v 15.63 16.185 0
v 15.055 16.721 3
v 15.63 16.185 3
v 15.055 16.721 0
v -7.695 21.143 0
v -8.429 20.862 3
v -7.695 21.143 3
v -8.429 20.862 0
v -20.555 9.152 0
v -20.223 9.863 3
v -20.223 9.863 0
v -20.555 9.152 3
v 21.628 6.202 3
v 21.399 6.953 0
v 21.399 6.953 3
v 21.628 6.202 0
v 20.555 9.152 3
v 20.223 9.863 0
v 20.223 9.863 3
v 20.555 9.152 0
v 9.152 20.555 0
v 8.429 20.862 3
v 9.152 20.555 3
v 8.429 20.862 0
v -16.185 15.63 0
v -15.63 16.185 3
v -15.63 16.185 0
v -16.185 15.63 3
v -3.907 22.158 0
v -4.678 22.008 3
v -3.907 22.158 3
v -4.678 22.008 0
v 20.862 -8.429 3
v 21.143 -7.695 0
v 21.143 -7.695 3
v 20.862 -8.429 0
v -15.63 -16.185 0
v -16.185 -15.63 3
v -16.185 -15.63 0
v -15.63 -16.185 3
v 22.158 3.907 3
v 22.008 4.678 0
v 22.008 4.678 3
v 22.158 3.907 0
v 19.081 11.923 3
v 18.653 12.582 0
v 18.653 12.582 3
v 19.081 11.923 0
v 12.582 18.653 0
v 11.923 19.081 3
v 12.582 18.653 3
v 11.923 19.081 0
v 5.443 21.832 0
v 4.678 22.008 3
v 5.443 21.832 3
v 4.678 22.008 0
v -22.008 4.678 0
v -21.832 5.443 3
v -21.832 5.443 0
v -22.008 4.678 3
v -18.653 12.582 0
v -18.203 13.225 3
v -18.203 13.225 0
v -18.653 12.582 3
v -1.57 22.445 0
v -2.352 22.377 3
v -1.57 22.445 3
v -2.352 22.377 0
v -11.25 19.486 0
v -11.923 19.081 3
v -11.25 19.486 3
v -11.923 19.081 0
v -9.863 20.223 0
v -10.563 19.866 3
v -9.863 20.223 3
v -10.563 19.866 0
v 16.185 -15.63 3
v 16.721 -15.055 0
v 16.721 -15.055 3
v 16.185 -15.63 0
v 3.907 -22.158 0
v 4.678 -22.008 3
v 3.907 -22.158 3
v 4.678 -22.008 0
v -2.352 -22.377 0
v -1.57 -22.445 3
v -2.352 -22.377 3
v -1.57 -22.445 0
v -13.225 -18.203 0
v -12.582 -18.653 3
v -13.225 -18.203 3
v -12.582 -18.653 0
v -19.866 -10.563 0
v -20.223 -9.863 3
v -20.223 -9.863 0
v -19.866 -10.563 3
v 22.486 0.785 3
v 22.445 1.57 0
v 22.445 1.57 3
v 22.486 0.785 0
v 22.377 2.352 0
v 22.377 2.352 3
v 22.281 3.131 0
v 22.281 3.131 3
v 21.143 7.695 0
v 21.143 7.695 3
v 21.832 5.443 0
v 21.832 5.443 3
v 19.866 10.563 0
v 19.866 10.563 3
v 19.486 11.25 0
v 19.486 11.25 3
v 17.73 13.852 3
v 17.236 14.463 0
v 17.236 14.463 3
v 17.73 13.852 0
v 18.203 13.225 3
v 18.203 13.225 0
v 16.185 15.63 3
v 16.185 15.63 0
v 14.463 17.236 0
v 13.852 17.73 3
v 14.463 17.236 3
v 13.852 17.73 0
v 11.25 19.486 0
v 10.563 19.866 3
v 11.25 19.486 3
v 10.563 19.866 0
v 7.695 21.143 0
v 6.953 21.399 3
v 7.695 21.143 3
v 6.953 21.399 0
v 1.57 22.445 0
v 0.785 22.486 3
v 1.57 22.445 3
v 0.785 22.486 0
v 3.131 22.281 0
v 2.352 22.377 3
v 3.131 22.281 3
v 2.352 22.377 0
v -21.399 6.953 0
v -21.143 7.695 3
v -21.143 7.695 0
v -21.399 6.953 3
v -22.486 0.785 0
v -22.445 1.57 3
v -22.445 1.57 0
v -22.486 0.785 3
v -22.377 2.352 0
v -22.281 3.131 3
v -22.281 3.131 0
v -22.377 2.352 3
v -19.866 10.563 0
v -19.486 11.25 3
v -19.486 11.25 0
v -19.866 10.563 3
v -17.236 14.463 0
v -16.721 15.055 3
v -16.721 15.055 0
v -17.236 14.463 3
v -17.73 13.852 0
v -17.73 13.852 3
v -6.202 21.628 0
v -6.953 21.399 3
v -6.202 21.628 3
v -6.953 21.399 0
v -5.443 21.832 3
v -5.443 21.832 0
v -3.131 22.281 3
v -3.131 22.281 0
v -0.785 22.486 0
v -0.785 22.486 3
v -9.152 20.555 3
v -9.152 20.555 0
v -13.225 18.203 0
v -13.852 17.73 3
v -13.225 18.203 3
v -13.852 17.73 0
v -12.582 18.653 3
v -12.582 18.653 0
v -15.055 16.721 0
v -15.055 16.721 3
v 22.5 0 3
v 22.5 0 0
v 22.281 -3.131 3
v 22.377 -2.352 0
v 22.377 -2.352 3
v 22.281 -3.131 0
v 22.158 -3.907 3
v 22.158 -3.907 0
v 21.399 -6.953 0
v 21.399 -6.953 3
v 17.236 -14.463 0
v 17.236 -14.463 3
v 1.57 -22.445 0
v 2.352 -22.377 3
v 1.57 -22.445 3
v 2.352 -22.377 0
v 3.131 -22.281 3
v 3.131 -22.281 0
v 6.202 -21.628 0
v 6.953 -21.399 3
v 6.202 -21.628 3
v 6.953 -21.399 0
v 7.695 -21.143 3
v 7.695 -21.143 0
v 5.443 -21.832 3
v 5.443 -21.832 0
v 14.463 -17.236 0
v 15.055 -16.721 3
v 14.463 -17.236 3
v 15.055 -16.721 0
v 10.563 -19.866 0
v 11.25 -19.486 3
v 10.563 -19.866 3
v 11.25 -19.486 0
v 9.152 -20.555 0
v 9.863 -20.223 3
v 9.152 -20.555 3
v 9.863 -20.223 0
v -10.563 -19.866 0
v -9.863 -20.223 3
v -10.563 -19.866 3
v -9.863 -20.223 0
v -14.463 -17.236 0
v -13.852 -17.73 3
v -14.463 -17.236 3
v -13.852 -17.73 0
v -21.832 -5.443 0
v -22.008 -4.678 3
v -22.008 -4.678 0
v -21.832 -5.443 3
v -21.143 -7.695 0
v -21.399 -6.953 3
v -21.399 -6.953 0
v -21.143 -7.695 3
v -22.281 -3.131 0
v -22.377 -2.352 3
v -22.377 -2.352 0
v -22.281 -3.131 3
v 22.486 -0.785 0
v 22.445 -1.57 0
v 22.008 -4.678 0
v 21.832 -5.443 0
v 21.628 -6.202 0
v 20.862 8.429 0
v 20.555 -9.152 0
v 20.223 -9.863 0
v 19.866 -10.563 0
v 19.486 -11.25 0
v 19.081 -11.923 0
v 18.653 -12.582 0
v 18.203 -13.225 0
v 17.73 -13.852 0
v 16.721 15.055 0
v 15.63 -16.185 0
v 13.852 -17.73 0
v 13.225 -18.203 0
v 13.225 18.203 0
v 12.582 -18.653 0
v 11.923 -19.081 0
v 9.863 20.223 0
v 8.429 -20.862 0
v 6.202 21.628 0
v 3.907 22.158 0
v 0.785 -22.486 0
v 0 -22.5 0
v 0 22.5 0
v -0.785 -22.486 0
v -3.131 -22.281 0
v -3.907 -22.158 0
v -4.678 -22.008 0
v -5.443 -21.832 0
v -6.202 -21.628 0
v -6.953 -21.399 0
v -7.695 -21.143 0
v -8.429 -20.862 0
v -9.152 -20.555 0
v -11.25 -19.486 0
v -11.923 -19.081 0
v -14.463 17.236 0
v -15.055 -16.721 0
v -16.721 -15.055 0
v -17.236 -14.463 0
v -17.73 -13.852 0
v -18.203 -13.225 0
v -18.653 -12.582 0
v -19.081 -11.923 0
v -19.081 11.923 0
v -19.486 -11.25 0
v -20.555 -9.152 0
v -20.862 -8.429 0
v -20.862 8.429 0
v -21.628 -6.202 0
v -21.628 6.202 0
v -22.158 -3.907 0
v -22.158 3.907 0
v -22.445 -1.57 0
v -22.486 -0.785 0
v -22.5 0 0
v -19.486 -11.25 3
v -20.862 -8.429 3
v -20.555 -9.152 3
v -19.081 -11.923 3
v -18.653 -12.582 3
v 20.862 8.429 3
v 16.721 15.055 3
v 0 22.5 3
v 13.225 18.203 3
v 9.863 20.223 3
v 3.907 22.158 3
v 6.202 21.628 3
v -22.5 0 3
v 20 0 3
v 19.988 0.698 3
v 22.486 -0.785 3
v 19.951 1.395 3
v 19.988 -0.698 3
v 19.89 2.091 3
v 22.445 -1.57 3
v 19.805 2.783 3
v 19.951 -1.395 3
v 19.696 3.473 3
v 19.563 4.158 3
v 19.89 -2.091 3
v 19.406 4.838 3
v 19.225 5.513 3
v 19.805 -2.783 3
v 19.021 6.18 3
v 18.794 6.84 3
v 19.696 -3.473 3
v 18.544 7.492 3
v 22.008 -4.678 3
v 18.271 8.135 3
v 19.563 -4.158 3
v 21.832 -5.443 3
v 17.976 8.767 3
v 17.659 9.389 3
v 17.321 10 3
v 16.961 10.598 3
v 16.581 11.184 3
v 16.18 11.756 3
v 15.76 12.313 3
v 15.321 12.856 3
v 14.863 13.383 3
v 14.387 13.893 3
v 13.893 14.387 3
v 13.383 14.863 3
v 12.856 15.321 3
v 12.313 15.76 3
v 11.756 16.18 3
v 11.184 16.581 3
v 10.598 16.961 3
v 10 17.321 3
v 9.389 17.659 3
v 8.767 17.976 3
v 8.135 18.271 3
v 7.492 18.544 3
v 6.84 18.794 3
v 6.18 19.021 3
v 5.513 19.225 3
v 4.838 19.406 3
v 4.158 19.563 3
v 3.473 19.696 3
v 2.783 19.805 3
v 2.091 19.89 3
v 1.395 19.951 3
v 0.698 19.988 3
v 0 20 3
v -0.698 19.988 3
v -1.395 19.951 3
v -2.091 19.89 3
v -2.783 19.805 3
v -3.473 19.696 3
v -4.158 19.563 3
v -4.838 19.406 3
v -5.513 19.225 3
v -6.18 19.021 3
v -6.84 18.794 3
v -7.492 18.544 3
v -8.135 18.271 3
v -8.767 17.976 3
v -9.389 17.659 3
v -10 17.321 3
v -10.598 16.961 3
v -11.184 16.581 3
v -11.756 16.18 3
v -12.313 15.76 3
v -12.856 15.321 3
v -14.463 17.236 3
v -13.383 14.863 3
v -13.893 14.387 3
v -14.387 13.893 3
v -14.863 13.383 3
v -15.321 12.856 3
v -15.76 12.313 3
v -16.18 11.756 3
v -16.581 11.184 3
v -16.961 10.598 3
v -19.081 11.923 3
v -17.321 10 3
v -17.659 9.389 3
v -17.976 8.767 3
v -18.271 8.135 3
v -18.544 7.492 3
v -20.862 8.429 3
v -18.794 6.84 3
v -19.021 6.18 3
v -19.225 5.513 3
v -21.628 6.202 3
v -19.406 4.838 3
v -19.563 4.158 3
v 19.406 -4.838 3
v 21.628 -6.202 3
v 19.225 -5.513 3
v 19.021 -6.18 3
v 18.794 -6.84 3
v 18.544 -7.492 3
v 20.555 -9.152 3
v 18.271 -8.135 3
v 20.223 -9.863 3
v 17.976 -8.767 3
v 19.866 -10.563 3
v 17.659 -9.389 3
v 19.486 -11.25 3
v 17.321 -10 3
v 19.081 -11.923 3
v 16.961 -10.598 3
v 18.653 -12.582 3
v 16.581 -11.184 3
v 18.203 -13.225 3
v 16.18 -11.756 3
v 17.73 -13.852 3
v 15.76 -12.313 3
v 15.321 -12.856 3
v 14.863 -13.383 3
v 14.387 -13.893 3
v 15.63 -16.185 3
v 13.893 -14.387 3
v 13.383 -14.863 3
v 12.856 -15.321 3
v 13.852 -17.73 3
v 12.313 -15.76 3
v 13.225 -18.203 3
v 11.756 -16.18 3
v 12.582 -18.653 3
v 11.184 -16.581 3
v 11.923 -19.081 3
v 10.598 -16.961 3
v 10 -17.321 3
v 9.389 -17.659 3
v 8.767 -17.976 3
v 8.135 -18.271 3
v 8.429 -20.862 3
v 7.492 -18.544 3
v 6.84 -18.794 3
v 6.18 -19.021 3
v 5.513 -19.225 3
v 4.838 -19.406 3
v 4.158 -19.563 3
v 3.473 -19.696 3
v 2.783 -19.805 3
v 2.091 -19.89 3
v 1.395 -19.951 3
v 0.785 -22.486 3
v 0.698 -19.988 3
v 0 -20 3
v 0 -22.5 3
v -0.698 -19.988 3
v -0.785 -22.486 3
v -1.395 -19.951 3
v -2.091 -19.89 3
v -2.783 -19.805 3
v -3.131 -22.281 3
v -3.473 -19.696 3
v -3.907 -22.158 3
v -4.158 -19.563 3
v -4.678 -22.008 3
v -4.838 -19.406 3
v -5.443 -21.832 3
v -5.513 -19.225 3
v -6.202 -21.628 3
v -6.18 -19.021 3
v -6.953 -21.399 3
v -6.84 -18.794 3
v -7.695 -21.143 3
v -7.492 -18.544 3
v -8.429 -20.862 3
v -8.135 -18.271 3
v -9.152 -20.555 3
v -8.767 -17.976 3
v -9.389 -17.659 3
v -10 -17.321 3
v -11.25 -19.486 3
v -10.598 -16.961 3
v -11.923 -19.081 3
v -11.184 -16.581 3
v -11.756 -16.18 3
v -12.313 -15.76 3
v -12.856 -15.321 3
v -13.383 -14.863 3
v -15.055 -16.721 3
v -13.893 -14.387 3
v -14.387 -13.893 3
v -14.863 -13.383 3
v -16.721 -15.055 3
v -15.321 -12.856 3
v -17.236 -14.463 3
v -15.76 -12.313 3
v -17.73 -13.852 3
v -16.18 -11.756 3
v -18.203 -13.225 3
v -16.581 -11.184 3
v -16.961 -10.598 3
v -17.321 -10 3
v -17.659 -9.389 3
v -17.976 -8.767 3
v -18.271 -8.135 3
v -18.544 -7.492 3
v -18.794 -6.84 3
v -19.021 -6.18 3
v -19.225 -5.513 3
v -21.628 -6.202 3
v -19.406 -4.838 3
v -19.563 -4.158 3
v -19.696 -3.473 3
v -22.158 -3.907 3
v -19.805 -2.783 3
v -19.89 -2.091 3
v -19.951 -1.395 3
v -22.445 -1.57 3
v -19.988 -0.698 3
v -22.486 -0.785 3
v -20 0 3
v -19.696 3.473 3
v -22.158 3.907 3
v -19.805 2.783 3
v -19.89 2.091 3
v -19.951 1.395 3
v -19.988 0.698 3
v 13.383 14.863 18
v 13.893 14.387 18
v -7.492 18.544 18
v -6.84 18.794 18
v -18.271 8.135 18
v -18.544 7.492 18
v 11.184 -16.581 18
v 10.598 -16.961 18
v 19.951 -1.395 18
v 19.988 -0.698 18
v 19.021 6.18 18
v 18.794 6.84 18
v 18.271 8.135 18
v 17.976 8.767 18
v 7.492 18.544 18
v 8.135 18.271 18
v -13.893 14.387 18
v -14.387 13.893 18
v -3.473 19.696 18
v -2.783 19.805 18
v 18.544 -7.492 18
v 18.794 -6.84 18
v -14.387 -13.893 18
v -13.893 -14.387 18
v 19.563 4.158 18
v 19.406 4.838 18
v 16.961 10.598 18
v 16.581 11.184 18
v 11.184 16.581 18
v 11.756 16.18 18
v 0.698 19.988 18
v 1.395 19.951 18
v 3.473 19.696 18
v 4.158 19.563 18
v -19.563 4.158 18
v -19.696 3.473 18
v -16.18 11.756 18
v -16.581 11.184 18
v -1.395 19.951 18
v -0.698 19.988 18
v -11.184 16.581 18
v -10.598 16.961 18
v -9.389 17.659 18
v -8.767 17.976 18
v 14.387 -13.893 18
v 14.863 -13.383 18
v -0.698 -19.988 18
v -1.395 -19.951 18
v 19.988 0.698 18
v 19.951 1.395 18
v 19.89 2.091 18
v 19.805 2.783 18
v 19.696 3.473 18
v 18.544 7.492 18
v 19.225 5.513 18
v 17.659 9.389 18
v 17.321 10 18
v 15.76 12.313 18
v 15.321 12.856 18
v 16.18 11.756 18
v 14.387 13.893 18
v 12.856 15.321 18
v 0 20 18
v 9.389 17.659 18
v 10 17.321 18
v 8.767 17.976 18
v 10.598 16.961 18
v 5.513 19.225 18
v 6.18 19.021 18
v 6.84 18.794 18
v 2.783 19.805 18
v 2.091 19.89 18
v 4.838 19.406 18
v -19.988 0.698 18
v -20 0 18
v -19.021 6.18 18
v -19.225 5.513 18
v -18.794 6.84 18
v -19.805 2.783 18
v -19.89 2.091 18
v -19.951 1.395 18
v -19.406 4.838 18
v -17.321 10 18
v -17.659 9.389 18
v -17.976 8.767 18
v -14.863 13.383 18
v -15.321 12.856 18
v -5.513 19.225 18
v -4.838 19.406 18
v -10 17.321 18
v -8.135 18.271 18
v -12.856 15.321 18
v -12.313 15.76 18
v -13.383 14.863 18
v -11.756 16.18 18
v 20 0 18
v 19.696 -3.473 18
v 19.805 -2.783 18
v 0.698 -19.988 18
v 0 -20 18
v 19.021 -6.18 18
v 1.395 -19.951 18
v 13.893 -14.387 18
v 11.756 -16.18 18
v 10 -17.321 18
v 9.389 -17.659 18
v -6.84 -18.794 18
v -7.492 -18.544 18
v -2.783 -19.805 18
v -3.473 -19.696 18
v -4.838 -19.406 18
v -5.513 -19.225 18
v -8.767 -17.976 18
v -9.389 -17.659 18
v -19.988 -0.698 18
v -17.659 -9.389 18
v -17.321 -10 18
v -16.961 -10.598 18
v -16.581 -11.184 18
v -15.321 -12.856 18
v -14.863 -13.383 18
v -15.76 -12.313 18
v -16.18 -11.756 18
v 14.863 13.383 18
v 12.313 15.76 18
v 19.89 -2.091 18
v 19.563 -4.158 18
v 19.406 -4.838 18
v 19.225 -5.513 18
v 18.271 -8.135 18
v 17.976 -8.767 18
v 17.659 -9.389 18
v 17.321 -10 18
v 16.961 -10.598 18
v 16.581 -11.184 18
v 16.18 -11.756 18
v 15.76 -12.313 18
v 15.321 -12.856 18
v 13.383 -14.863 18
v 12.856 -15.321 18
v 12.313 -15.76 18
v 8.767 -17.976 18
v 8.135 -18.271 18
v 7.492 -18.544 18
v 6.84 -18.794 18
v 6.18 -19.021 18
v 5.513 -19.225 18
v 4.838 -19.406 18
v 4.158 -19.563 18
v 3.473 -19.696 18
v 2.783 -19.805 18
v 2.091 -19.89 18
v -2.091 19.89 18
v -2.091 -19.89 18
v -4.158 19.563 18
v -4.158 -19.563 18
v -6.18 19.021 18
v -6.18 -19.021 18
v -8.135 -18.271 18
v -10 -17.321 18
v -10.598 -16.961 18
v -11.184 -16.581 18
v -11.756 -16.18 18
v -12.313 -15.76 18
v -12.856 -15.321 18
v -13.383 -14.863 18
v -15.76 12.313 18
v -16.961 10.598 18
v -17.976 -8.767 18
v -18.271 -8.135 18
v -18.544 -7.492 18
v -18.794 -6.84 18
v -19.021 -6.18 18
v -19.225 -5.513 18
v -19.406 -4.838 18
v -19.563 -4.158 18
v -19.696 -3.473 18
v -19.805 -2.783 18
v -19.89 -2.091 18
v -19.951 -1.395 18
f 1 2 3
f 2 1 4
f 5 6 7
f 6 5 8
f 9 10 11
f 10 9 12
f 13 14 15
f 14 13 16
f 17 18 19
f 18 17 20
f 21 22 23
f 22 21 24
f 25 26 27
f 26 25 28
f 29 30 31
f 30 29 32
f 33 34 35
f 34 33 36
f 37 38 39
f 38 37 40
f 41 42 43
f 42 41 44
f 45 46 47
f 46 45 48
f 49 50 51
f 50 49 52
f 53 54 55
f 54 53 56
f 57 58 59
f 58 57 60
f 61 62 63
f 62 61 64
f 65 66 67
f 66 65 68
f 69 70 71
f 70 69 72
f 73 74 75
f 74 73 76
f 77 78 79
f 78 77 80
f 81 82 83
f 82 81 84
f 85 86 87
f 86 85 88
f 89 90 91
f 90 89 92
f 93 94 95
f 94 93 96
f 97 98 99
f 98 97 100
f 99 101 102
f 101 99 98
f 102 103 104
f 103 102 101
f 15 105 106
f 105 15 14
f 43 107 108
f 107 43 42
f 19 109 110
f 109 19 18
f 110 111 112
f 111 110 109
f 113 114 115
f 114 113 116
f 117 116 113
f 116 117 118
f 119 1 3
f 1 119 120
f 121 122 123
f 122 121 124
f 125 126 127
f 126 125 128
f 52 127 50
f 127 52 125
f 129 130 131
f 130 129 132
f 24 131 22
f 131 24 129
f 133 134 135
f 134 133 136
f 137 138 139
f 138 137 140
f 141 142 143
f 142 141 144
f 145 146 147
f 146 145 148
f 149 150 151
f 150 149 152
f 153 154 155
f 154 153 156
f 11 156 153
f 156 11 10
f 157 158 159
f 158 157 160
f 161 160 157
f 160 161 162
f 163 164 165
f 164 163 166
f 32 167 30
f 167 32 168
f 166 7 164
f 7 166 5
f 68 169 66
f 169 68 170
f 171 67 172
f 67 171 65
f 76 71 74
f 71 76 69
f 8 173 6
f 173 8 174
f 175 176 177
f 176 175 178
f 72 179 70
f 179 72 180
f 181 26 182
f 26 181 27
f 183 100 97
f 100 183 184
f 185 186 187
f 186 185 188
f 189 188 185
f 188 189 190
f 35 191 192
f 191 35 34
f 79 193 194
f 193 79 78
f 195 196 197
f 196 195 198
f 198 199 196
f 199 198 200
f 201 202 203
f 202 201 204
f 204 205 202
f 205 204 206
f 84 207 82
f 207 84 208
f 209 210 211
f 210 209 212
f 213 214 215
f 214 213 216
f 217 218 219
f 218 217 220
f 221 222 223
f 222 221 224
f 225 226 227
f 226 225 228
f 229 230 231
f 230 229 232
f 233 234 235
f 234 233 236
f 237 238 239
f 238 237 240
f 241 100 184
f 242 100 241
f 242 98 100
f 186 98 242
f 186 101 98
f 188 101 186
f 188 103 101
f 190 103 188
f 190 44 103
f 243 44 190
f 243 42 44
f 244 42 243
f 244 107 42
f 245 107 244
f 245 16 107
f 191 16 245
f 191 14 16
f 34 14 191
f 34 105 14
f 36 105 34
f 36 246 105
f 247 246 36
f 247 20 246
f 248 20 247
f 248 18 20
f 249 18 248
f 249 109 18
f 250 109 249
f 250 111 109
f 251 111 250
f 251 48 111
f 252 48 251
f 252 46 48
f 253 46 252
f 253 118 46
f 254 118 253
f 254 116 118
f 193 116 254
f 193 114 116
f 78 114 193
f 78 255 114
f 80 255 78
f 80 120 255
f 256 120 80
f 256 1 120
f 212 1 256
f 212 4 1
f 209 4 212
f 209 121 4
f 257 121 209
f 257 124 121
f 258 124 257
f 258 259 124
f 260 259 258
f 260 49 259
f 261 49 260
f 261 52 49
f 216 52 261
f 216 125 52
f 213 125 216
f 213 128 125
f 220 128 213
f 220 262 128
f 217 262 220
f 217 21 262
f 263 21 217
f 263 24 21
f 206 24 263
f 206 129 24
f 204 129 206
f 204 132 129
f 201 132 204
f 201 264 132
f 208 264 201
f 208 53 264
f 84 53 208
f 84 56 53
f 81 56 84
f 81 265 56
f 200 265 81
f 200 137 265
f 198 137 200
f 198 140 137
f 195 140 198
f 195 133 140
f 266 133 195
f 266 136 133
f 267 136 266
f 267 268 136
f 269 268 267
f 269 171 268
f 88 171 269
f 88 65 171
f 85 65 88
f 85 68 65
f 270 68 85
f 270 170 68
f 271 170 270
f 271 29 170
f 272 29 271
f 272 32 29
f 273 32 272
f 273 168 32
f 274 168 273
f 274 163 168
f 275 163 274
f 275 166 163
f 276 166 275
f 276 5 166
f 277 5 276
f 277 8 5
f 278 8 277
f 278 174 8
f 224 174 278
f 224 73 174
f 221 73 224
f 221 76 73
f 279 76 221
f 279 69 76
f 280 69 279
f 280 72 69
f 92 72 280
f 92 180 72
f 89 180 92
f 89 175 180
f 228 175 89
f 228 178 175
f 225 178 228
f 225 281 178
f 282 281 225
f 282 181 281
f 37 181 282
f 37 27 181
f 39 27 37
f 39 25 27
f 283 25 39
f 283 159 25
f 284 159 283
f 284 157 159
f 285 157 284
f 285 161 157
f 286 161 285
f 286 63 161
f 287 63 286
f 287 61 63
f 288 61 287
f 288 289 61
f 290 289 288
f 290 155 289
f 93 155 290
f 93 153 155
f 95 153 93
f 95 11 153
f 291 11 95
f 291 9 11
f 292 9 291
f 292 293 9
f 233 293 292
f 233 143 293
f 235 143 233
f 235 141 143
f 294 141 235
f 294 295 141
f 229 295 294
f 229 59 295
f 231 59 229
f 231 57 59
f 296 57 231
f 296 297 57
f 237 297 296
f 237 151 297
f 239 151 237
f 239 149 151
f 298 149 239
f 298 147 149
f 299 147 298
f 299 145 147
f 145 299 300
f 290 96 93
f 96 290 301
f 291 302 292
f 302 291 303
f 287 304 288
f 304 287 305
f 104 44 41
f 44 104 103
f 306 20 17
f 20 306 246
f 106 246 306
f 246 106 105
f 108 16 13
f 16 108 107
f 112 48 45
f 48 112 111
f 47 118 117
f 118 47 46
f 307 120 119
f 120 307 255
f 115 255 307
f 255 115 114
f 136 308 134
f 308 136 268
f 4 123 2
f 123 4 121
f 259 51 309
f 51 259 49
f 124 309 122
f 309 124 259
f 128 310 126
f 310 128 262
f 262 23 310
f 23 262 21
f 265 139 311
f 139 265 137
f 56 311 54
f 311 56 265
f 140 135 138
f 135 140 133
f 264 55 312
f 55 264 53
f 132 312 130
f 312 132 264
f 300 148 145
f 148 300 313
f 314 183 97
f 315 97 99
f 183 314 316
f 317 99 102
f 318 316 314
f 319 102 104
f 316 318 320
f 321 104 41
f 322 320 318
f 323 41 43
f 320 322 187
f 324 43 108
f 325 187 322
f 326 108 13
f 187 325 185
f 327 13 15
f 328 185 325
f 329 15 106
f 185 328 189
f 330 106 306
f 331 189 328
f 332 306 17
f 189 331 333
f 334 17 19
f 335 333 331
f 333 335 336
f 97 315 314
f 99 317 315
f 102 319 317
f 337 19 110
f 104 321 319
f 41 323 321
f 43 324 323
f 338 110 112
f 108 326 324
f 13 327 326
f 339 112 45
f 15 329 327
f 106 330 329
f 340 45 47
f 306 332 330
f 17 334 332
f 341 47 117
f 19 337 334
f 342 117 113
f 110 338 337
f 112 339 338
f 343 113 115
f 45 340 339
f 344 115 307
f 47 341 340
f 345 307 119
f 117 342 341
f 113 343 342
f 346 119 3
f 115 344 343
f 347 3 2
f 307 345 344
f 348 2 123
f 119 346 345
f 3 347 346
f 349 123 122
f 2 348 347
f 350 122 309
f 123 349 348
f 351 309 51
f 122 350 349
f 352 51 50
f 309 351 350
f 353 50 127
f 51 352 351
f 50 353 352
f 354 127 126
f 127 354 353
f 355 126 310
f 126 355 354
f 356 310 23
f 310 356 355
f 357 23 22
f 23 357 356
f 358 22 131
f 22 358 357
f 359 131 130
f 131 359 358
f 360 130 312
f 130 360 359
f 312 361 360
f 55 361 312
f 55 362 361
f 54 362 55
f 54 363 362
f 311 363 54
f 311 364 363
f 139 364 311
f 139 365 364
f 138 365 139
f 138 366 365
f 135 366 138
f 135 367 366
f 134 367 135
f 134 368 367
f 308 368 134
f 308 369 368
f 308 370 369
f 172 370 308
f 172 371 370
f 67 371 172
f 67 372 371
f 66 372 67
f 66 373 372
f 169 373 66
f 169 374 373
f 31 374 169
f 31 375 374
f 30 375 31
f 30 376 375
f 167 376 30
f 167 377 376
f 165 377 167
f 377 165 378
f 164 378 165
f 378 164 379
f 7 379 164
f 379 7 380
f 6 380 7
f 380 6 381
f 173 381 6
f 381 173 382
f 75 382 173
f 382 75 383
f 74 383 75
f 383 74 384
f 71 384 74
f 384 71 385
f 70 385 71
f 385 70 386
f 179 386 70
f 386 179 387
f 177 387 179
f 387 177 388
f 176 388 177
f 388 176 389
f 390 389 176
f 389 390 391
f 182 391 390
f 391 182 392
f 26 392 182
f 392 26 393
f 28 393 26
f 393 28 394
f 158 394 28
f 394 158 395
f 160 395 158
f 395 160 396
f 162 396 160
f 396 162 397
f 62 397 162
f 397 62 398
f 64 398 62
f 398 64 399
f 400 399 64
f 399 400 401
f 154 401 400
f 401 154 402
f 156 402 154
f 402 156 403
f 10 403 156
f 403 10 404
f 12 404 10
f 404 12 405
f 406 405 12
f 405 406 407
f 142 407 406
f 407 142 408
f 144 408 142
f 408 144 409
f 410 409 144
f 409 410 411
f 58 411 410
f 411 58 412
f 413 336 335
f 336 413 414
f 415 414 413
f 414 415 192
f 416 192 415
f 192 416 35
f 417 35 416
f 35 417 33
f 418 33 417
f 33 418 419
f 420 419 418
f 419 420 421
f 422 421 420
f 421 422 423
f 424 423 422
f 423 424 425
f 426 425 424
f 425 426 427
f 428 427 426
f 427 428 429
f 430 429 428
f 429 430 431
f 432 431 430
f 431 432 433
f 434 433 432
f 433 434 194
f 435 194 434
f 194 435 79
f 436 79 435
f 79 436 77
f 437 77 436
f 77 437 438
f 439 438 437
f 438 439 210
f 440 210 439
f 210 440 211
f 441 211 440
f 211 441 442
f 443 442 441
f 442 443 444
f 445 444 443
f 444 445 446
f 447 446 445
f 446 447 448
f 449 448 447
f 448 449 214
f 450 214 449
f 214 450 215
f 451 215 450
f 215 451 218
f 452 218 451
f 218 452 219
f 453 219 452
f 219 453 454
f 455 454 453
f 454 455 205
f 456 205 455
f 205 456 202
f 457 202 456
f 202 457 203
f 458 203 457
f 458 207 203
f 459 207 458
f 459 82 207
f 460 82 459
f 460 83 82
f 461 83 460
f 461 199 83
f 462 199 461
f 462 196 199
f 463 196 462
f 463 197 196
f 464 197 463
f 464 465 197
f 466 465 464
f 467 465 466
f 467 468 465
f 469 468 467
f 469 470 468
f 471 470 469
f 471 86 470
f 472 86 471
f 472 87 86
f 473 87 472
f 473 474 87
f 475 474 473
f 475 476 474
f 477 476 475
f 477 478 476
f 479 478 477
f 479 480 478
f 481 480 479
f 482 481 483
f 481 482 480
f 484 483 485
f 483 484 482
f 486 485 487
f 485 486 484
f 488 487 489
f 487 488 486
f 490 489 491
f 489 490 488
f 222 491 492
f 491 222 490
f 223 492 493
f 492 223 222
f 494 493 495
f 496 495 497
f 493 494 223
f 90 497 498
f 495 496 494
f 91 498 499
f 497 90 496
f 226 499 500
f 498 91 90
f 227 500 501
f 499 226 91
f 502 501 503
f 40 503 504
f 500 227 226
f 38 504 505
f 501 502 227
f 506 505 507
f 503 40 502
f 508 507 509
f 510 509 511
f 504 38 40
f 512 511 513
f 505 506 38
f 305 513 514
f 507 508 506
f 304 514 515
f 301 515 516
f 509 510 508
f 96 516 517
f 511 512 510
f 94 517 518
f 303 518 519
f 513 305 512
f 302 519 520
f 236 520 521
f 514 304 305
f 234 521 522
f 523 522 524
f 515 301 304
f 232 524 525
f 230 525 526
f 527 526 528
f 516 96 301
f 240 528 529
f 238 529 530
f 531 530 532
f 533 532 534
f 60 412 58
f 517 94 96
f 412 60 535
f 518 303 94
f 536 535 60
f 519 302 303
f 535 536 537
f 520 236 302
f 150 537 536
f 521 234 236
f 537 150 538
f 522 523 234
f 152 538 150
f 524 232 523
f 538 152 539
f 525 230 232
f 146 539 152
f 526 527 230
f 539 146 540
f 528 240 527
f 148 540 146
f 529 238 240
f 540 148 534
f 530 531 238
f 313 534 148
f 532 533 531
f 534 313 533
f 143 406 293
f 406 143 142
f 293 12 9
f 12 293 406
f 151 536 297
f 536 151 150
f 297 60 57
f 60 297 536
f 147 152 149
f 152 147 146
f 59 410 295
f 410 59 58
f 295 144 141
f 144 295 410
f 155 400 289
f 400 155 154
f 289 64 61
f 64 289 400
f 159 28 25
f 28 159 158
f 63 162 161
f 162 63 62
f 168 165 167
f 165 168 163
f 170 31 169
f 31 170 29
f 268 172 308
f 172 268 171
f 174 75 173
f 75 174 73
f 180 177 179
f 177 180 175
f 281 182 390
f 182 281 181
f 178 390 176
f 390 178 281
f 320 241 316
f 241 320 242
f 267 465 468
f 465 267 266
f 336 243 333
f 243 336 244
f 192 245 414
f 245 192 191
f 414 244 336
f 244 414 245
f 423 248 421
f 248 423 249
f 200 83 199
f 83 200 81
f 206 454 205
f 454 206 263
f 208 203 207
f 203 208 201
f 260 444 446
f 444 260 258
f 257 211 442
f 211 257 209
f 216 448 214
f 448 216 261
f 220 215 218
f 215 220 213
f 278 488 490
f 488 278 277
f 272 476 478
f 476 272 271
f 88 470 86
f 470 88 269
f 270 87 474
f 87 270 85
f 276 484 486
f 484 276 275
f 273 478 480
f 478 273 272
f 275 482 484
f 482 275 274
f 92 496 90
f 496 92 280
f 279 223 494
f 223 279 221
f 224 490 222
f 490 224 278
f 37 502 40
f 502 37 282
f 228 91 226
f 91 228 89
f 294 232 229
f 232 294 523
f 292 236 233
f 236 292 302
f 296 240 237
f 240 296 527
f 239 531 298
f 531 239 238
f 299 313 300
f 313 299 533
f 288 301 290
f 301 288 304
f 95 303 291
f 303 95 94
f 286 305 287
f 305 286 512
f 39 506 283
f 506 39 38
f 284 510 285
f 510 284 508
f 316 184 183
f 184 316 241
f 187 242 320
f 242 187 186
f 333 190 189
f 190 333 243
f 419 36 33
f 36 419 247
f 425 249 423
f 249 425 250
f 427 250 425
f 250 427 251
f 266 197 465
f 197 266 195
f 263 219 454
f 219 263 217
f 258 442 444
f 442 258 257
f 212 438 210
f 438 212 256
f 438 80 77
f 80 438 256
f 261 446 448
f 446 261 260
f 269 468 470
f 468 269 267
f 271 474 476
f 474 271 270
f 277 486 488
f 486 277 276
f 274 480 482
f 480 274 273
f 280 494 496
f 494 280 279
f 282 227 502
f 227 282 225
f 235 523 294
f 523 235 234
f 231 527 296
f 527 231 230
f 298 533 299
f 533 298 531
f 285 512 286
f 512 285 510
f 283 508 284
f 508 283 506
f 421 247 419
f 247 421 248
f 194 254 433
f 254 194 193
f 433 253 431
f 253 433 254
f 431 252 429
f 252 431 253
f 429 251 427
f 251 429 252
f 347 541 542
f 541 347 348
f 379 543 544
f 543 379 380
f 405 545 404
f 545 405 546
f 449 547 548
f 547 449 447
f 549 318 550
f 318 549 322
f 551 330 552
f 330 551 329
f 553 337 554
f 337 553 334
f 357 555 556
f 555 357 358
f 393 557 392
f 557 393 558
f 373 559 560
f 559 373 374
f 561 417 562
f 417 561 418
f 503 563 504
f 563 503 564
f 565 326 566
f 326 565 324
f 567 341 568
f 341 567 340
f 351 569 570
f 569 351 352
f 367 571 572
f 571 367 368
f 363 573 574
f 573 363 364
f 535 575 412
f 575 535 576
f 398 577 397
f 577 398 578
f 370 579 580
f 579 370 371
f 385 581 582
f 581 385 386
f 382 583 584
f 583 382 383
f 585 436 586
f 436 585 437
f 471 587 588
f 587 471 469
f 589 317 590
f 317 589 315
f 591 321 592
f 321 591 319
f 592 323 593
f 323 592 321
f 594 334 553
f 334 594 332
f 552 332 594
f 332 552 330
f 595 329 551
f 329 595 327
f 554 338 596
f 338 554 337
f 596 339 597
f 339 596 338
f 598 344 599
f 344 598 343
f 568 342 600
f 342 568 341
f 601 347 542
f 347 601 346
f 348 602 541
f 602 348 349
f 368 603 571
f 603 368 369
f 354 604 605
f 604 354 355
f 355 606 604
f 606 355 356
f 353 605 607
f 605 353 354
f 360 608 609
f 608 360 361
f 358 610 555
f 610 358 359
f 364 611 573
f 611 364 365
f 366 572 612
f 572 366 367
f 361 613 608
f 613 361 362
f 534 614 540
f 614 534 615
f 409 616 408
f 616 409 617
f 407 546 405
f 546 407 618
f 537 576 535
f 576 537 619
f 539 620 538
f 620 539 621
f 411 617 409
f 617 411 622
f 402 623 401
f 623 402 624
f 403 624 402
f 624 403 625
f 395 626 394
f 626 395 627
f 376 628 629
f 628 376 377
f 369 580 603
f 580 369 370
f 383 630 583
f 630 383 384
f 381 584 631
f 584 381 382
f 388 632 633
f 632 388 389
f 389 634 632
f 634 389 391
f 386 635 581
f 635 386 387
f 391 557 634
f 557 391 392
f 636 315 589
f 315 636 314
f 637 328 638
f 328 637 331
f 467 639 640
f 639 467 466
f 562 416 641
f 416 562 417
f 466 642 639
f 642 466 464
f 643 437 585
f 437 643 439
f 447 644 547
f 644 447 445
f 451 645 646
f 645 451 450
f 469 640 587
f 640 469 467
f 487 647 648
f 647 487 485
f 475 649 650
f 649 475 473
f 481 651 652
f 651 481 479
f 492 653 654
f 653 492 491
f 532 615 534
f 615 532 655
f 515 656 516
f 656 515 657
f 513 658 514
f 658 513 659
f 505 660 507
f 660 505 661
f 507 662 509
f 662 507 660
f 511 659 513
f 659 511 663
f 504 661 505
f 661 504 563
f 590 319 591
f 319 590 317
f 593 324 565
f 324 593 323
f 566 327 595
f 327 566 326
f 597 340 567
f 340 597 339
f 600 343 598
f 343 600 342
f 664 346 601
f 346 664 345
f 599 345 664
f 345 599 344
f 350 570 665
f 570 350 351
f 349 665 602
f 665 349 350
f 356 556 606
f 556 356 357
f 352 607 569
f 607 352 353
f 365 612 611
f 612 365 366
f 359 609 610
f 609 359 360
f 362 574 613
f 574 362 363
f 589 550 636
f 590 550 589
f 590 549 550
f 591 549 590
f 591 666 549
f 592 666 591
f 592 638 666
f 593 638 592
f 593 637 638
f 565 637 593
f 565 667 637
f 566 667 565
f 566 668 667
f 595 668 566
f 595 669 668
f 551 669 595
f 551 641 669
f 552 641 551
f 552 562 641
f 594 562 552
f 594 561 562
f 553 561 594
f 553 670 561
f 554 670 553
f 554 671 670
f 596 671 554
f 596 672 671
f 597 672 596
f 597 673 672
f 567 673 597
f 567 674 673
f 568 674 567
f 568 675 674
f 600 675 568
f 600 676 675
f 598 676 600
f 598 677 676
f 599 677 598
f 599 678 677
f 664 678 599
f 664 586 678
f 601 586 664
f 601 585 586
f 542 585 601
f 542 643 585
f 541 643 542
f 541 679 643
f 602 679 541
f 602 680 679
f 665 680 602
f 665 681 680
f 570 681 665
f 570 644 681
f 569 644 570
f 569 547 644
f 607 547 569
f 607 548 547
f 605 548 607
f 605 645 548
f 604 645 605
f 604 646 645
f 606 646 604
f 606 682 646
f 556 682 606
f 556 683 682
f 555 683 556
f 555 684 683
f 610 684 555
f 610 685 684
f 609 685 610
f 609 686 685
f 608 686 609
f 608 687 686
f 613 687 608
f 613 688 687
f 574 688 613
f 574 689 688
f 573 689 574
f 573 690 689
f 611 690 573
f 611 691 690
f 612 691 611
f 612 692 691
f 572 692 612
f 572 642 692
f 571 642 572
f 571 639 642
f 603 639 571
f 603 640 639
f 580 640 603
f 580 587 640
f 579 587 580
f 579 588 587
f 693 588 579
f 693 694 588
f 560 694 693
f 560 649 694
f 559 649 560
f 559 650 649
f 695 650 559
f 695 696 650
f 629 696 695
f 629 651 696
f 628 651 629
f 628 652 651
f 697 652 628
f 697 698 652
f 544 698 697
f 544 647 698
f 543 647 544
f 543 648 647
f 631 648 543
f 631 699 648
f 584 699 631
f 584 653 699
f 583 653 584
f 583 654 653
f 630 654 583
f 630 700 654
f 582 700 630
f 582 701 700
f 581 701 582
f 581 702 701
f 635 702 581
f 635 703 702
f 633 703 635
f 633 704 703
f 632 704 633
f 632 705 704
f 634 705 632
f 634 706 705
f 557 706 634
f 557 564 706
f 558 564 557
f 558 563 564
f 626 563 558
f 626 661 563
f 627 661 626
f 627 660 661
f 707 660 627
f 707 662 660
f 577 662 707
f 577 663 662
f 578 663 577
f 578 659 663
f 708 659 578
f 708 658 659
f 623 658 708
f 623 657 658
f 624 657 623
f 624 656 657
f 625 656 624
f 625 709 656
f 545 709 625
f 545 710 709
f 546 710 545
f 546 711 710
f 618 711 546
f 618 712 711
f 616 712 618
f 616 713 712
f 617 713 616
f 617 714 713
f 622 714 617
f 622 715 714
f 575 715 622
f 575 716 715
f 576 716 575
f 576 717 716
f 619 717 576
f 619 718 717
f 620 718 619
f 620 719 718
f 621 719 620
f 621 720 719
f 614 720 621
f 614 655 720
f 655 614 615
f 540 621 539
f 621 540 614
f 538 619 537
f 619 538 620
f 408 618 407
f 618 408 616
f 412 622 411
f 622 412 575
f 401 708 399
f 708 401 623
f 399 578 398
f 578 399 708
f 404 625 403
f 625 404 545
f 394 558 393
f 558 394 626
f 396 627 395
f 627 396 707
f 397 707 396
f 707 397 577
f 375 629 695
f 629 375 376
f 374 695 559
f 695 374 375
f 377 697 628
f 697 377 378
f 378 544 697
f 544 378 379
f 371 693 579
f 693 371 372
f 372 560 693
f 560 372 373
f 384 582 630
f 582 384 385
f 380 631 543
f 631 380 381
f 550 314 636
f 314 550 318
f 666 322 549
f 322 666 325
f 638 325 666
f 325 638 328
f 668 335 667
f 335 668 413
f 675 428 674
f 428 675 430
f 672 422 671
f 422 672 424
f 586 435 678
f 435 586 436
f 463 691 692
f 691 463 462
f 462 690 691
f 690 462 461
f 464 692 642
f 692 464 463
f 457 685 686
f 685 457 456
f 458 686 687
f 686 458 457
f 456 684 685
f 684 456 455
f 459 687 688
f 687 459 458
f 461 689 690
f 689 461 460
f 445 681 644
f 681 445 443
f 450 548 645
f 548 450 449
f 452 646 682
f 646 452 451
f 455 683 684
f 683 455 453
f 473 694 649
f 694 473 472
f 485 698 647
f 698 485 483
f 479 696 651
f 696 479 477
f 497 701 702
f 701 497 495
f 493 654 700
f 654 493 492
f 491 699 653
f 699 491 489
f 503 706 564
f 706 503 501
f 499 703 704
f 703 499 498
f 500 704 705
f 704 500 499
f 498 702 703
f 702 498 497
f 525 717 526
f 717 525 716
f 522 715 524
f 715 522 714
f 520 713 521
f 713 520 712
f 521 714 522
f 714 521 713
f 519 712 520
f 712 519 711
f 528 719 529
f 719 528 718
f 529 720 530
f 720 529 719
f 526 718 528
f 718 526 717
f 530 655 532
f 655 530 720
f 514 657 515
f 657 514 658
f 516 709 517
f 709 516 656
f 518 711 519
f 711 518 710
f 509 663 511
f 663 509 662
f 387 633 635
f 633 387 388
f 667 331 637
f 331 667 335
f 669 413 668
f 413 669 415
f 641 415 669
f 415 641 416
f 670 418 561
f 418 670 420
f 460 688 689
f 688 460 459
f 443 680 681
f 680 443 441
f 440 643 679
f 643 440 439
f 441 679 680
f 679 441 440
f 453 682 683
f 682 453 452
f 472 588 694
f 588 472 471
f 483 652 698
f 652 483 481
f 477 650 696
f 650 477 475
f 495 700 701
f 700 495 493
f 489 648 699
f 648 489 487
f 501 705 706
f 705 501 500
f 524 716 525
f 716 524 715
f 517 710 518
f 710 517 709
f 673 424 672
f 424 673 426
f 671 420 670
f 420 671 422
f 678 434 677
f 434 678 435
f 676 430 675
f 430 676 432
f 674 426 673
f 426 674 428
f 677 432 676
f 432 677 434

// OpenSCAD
$fn = 180;

cylinder (d=45, h=3);
cylinder (d=40, h=18);
